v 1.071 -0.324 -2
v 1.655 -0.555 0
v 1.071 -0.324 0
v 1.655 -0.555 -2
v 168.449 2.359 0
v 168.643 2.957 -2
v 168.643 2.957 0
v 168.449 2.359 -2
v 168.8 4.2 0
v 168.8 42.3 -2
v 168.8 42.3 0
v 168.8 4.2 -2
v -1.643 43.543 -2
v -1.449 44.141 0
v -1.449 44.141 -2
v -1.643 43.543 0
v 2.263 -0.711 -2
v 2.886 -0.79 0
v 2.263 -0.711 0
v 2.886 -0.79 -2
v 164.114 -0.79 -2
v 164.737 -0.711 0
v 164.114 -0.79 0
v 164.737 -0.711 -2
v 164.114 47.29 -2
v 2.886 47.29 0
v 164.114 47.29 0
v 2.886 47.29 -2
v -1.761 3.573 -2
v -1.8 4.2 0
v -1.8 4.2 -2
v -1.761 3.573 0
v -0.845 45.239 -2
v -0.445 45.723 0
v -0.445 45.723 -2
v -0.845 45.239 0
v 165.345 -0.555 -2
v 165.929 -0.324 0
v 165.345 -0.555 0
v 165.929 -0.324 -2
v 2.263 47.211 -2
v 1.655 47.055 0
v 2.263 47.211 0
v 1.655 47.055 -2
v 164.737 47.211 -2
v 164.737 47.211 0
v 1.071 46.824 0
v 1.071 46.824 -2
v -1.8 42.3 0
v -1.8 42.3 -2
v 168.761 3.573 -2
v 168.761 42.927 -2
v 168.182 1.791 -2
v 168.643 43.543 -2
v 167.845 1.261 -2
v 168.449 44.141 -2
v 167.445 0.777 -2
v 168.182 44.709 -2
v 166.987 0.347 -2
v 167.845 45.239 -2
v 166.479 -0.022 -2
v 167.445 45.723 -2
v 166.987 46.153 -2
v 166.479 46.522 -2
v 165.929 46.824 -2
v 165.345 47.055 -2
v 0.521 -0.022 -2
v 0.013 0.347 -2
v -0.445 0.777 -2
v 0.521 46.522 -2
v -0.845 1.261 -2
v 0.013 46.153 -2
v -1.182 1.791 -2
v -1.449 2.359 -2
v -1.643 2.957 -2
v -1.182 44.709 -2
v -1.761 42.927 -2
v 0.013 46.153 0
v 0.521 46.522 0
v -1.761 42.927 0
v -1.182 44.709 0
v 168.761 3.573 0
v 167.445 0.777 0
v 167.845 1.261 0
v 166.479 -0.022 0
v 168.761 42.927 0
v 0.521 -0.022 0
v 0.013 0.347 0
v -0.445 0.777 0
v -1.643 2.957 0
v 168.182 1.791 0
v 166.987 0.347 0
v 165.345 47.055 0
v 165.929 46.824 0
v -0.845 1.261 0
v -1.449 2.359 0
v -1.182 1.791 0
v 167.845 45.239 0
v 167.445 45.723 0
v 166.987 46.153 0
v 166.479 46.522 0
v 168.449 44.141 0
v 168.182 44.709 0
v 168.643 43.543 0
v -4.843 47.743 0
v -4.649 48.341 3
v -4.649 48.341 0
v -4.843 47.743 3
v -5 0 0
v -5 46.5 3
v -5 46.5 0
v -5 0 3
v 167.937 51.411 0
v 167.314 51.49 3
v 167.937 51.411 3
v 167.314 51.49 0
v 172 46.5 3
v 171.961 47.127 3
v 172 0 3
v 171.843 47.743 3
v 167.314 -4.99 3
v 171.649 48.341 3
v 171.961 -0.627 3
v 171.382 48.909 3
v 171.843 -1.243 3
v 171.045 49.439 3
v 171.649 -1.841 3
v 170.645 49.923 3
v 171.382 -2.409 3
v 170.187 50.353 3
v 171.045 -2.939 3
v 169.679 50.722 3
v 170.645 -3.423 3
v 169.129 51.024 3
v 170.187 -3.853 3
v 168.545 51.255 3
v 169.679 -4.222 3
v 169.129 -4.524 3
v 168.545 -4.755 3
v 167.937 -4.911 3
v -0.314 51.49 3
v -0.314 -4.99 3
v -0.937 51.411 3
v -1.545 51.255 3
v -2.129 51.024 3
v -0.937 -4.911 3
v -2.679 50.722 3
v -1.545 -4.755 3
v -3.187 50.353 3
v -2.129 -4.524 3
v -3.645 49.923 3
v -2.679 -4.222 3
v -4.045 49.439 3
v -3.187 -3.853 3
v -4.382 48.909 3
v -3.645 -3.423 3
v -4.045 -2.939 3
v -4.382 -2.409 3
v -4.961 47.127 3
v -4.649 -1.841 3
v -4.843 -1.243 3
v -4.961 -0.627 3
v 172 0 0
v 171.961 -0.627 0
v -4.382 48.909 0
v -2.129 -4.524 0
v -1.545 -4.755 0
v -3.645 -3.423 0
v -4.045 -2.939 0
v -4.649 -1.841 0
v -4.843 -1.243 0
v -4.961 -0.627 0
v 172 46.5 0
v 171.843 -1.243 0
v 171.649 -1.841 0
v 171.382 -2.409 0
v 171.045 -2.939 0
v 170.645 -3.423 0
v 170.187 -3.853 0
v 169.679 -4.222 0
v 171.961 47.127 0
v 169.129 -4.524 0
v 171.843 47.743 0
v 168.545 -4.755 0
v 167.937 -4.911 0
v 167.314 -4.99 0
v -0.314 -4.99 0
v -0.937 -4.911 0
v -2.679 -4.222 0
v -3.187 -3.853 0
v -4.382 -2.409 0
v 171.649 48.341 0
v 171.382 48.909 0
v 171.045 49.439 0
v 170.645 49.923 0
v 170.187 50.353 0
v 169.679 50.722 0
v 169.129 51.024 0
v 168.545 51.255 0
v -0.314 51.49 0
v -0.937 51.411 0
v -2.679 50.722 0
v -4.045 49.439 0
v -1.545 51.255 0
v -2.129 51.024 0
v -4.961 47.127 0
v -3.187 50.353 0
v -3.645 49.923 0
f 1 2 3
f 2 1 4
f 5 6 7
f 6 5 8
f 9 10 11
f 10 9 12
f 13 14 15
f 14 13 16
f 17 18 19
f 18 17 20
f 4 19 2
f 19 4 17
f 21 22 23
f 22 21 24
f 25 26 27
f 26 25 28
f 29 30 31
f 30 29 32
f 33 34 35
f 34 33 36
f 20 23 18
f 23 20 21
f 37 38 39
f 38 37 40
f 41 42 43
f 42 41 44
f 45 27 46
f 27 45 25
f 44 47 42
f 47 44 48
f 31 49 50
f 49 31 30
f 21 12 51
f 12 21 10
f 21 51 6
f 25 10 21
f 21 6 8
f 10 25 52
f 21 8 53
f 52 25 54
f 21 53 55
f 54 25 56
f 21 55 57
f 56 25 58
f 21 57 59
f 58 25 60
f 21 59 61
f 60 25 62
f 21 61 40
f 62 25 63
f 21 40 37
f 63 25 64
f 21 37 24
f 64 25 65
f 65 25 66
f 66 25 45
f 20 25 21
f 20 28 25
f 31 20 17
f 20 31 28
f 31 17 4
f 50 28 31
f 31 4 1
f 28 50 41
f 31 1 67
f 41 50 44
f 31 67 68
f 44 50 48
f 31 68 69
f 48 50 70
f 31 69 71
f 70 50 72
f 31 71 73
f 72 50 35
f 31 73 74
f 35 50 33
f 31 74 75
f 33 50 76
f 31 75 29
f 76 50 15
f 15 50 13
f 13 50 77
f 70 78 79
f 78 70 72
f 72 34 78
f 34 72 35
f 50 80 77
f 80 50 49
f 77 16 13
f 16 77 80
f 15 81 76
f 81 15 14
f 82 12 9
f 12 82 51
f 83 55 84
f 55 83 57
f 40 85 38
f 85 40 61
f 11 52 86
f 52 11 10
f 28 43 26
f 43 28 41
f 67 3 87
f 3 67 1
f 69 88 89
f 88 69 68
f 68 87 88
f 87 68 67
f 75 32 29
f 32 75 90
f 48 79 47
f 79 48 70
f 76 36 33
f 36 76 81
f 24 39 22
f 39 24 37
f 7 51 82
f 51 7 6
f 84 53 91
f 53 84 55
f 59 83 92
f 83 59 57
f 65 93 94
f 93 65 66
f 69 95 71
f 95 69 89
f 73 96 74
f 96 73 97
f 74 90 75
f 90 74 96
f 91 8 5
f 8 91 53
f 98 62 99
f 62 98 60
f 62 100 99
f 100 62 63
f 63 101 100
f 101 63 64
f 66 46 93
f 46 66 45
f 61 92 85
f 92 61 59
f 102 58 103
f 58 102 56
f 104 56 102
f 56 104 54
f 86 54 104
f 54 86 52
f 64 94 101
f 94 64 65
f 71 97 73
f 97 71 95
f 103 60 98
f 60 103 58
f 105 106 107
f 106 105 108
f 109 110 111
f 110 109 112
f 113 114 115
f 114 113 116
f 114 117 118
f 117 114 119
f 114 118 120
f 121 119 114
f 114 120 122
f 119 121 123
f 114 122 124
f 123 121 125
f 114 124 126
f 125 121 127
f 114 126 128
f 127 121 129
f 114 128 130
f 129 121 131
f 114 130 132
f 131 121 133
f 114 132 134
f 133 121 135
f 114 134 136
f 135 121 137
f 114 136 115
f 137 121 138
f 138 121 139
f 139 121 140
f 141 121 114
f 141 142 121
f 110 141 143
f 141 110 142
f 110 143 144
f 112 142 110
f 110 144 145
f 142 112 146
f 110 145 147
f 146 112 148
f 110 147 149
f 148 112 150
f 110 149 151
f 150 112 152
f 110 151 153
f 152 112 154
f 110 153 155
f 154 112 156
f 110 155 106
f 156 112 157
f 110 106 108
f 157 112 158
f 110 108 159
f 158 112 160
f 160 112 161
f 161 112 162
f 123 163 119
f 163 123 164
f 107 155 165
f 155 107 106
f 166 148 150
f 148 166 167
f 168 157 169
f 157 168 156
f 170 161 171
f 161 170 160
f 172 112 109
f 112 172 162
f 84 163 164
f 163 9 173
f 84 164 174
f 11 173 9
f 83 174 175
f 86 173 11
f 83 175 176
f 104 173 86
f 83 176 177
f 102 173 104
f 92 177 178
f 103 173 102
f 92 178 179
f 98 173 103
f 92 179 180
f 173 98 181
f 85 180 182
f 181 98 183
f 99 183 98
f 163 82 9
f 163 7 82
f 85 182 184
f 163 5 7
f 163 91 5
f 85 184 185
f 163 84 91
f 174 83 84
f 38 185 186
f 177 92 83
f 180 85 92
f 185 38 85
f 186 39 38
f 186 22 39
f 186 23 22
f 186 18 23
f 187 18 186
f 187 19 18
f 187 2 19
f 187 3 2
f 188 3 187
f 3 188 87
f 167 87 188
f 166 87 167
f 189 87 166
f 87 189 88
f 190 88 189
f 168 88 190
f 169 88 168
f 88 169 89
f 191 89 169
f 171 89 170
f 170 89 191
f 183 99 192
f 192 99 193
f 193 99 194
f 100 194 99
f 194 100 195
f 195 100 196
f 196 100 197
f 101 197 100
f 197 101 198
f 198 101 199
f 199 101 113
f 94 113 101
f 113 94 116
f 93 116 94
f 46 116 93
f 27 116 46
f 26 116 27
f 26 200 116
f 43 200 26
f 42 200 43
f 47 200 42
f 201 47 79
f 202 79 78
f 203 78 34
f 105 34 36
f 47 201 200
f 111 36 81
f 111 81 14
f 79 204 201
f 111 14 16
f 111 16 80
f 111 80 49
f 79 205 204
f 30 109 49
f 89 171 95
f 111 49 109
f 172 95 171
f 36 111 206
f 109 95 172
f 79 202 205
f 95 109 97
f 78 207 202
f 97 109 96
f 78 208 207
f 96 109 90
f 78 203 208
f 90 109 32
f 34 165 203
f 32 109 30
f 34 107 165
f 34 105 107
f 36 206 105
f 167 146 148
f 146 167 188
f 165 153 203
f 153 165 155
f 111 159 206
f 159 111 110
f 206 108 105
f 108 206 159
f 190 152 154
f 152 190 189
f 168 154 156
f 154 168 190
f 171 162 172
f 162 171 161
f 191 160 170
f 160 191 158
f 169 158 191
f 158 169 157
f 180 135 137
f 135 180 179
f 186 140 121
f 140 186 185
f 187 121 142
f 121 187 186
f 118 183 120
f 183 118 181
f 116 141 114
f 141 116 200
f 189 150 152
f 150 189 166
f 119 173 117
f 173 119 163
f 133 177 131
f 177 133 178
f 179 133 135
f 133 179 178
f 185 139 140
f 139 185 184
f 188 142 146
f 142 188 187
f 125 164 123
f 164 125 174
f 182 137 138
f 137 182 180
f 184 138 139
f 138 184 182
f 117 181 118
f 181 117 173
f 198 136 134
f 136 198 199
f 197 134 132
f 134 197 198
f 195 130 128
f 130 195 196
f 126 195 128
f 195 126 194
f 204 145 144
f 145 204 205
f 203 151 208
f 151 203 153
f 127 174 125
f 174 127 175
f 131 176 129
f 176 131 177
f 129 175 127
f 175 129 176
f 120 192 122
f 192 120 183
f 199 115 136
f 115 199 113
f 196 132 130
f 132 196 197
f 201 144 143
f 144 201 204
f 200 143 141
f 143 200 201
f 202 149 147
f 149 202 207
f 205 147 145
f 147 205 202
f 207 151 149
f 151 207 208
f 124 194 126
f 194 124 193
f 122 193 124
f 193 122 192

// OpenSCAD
$fn=50;
voff1 = 14;
voff2 = 38;
hoff1 = 15;
hoff2 = 16;
height = 12;

translate([3.2,4.2,-2])
    minkowski() {
        cube([160.6,38.1,2]);
        cylinder(h=2, d=10);
    };

minkowski() {
    cube([167,46.5,1.5]);
    cylinder(h=1.5, d=10);
};
